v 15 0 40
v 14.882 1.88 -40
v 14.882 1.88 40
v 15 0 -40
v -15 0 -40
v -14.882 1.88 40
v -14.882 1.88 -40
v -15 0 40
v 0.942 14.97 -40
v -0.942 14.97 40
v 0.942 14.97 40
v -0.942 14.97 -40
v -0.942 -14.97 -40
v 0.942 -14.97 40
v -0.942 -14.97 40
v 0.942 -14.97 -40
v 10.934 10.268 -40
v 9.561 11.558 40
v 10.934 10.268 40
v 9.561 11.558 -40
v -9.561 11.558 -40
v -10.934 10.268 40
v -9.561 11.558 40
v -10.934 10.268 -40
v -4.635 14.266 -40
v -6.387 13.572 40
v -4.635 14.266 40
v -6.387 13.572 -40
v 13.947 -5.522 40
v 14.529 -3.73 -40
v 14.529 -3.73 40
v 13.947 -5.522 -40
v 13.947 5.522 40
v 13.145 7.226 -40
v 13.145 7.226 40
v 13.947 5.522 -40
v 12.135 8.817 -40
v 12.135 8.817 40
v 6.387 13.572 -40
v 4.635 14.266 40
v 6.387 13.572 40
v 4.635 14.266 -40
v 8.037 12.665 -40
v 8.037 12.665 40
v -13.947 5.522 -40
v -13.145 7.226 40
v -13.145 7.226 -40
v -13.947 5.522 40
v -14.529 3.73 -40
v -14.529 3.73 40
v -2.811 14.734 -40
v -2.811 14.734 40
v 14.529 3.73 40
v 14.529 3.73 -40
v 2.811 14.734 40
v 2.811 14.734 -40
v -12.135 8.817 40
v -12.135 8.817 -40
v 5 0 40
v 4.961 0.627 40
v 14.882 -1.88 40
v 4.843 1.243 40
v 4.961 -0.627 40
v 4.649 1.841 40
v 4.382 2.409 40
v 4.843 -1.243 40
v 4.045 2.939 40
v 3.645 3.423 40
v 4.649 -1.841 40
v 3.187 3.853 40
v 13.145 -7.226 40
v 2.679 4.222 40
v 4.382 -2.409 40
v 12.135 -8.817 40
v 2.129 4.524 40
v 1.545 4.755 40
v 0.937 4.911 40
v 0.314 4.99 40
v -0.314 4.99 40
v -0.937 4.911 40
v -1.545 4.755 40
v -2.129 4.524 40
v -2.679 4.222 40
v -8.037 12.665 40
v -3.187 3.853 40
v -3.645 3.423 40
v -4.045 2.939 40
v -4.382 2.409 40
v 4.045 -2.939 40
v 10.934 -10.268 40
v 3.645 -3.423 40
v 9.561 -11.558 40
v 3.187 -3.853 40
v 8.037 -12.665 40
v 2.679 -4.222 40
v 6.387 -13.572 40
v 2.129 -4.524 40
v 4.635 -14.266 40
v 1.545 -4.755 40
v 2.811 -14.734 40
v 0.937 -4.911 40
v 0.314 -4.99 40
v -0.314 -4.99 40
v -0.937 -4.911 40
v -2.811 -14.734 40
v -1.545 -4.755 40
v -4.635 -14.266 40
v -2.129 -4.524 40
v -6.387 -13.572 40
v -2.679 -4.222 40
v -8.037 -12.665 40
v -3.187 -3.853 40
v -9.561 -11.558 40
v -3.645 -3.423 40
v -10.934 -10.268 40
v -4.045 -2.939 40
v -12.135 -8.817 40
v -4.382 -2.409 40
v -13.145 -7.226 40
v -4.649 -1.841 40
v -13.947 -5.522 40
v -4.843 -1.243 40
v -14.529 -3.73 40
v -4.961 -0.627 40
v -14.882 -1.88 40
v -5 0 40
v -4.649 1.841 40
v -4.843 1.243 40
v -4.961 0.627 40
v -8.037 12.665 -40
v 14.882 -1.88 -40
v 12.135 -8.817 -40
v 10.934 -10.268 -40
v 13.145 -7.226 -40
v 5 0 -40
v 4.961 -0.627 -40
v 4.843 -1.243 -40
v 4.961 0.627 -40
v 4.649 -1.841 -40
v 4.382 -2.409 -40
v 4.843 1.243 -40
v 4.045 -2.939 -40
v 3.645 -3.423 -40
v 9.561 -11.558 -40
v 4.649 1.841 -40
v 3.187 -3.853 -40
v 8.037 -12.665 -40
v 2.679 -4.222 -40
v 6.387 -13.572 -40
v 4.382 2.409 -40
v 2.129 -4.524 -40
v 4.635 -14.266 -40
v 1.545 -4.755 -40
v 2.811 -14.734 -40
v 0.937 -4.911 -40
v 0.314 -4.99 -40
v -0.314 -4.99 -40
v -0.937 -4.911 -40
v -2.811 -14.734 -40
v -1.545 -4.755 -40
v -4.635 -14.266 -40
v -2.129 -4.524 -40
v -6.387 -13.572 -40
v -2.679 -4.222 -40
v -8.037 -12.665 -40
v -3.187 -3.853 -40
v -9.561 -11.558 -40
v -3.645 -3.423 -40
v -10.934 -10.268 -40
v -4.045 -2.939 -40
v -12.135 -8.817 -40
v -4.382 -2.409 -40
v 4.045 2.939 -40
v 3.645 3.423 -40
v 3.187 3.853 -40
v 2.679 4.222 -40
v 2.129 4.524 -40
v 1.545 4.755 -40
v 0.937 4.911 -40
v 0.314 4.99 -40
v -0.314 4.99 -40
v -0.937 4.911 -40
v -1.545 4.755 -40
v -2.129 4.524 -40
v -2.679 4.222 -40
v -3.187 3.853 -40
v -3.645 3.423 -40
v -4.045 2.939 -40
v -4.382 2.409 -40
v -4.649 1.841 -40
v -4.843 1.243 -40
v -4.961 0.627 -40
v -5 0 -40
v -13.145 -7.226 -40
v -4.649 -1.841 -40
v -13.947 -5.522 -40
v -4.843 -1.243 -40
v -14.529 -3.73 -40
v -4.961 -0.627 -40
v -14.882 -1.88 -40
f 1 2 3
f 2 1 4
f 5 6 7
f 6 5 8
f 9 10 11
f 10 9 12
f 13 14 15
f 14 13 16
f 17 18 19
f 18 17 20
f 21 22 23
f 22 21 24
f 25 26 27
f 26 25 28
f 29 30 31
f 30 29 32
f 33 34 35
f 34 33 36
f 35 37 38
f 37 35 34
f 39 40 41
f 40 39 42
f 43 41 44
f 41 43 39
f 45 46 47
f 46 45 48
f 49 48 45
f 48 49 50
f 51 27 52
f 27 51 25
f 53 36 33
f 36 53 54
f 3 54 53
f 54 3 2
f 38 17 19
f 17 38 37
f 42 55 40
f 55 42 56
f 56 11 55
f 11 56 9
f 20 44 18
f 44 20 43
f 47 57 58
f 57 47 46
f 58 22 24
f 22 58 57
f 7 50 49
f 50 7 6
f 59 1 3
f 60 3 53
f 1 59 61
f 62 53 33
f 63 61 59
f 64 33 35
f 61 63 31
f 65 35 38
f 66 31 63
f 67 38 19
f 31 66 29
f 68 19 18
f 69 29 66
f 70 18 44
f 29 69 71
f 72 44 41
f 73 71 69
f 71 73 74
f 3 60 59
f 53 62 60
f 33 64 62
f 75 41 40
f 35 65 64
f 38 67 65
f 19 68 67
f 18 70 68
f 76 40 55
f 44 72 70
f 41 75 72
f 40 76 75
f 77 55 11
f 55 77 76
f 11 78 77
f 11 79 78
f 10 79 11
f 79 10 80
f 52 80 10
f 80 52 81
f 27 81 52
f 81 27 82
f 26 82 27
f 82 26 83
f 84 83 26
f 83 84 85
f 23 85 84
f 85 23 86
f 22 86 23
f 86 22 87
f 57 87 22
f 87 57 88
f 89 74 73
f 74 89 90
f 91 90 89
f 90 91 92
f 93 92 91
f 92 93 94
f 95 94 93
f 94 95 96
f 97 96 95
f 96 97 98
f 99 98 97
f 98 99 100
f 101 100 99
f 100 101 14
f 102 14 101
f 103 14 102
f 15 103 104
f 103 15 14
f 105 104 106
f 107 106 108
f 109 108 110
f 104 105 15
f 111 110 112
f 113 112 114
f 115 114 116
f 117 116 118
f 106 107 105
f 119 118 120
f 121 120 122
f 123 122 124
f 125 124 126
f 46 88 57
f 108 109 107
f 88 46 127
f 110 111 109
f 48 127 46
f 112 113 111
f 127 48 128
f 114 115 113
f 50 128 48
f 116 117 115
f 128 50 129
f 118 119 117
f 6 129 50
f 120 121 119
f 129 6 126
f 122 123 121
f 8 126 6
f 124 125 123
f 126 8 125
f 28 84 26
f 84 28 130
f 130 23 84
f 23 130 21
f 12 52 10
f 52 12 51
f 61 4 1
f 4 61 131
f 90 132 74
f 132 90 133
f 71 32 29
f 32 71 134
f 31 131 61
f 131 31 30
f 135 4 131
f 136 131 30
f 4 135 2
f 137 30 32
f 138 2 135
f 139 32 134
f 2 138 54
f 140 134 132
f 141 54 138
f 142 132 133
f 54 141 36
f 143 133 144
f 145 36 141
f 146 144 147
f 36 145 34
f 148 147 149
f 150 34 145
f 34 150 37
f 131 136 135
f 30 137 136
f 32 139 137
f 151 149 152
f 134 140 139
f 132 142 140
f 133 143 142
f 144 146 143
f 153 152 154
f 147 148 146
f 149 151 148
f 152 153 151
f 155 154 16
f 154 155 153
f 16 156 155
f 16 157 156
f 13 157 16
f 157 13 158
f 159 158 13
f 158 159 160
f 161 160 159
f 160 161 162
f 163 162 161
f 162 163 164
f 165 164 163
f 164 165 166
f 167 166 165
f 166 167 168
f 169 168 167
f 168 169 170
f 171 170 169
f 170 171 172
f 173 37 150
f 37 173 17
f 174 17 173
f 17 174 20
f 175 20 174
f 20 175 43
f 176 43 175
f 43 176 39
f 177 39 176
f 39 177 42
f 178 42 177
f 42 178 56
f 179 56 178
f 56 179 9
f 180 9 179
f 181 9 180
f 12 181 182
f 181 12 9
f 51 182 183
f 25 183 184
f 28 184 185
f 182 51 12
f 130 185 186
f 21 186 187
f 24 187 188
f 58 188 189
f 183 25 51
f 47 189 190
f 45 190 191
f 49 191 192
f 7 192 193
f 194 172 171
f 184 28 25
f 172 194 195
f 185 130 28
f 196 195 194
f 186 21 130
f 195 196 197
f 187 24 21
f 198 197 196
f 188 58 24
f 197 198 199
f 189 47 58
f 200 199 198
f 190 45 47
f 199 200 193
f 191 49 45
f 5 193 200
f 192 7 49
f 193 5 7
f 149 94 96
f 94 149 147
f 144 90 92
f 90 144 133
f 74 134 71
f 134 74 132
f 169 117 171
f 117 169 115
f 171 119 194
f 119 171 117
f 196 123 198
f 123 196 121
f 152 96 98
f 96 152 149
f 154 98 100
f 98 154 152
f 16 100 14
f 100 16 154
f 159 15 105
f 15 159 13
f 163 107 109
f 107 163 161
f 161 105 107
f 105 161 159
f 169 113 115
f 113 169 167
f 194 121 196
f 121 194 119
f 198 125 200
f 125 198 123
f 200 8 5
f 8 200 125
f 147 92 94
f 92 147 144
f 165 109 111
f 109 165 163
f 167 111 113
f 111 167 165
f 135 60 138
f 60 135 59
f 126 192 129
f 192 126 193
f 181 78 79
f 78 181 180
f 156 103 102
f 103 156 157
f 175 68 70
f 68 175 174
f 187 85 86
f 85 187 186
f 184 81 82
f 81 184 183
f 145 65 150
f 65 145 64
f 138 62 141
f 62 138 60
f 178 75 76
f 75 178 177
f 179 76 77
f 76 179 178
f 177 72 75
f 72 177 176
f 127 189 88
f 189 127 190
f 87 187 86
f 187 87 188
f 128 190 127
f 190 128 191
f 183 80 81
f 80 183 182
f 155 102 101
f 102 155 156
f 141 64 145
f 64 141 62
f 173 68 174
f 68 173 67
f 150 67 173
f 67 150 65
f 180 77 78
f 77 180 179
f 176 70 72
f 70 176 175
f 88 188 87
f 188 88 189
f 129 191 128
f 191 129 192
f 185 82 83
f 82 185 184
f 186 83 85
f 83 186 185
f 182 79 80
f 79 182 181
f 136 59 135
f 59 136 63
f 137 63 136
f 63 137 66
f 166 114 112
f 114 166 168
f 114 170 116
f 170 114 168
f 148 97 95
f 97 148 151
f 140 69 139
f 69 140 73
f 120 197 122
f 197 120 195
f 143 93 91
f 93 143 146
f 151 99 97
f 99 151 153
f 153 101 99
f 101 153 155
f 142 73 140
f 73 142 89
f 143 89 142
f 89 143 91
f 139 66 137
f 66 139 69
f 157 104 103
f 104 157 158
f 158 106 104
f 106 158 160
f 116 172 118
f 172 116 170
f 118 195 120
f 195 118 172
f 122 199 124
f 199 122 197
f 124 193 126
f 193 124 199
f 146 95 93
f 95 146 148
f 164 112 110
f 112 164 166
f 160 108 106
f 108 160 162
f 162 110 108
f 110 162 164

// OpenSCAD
$fn = 50;


difference() {
	union() {
		translate(v = [0, 0, -40.0000000000]) {
			cylinder(h = 80, r = 15.0000000000);
		}
	}
	union() {
		translate(v = [0, 0, -100.0000000000]) {
			cylinder(h = 200, r = 5.0000000000);
		}
	}
}
